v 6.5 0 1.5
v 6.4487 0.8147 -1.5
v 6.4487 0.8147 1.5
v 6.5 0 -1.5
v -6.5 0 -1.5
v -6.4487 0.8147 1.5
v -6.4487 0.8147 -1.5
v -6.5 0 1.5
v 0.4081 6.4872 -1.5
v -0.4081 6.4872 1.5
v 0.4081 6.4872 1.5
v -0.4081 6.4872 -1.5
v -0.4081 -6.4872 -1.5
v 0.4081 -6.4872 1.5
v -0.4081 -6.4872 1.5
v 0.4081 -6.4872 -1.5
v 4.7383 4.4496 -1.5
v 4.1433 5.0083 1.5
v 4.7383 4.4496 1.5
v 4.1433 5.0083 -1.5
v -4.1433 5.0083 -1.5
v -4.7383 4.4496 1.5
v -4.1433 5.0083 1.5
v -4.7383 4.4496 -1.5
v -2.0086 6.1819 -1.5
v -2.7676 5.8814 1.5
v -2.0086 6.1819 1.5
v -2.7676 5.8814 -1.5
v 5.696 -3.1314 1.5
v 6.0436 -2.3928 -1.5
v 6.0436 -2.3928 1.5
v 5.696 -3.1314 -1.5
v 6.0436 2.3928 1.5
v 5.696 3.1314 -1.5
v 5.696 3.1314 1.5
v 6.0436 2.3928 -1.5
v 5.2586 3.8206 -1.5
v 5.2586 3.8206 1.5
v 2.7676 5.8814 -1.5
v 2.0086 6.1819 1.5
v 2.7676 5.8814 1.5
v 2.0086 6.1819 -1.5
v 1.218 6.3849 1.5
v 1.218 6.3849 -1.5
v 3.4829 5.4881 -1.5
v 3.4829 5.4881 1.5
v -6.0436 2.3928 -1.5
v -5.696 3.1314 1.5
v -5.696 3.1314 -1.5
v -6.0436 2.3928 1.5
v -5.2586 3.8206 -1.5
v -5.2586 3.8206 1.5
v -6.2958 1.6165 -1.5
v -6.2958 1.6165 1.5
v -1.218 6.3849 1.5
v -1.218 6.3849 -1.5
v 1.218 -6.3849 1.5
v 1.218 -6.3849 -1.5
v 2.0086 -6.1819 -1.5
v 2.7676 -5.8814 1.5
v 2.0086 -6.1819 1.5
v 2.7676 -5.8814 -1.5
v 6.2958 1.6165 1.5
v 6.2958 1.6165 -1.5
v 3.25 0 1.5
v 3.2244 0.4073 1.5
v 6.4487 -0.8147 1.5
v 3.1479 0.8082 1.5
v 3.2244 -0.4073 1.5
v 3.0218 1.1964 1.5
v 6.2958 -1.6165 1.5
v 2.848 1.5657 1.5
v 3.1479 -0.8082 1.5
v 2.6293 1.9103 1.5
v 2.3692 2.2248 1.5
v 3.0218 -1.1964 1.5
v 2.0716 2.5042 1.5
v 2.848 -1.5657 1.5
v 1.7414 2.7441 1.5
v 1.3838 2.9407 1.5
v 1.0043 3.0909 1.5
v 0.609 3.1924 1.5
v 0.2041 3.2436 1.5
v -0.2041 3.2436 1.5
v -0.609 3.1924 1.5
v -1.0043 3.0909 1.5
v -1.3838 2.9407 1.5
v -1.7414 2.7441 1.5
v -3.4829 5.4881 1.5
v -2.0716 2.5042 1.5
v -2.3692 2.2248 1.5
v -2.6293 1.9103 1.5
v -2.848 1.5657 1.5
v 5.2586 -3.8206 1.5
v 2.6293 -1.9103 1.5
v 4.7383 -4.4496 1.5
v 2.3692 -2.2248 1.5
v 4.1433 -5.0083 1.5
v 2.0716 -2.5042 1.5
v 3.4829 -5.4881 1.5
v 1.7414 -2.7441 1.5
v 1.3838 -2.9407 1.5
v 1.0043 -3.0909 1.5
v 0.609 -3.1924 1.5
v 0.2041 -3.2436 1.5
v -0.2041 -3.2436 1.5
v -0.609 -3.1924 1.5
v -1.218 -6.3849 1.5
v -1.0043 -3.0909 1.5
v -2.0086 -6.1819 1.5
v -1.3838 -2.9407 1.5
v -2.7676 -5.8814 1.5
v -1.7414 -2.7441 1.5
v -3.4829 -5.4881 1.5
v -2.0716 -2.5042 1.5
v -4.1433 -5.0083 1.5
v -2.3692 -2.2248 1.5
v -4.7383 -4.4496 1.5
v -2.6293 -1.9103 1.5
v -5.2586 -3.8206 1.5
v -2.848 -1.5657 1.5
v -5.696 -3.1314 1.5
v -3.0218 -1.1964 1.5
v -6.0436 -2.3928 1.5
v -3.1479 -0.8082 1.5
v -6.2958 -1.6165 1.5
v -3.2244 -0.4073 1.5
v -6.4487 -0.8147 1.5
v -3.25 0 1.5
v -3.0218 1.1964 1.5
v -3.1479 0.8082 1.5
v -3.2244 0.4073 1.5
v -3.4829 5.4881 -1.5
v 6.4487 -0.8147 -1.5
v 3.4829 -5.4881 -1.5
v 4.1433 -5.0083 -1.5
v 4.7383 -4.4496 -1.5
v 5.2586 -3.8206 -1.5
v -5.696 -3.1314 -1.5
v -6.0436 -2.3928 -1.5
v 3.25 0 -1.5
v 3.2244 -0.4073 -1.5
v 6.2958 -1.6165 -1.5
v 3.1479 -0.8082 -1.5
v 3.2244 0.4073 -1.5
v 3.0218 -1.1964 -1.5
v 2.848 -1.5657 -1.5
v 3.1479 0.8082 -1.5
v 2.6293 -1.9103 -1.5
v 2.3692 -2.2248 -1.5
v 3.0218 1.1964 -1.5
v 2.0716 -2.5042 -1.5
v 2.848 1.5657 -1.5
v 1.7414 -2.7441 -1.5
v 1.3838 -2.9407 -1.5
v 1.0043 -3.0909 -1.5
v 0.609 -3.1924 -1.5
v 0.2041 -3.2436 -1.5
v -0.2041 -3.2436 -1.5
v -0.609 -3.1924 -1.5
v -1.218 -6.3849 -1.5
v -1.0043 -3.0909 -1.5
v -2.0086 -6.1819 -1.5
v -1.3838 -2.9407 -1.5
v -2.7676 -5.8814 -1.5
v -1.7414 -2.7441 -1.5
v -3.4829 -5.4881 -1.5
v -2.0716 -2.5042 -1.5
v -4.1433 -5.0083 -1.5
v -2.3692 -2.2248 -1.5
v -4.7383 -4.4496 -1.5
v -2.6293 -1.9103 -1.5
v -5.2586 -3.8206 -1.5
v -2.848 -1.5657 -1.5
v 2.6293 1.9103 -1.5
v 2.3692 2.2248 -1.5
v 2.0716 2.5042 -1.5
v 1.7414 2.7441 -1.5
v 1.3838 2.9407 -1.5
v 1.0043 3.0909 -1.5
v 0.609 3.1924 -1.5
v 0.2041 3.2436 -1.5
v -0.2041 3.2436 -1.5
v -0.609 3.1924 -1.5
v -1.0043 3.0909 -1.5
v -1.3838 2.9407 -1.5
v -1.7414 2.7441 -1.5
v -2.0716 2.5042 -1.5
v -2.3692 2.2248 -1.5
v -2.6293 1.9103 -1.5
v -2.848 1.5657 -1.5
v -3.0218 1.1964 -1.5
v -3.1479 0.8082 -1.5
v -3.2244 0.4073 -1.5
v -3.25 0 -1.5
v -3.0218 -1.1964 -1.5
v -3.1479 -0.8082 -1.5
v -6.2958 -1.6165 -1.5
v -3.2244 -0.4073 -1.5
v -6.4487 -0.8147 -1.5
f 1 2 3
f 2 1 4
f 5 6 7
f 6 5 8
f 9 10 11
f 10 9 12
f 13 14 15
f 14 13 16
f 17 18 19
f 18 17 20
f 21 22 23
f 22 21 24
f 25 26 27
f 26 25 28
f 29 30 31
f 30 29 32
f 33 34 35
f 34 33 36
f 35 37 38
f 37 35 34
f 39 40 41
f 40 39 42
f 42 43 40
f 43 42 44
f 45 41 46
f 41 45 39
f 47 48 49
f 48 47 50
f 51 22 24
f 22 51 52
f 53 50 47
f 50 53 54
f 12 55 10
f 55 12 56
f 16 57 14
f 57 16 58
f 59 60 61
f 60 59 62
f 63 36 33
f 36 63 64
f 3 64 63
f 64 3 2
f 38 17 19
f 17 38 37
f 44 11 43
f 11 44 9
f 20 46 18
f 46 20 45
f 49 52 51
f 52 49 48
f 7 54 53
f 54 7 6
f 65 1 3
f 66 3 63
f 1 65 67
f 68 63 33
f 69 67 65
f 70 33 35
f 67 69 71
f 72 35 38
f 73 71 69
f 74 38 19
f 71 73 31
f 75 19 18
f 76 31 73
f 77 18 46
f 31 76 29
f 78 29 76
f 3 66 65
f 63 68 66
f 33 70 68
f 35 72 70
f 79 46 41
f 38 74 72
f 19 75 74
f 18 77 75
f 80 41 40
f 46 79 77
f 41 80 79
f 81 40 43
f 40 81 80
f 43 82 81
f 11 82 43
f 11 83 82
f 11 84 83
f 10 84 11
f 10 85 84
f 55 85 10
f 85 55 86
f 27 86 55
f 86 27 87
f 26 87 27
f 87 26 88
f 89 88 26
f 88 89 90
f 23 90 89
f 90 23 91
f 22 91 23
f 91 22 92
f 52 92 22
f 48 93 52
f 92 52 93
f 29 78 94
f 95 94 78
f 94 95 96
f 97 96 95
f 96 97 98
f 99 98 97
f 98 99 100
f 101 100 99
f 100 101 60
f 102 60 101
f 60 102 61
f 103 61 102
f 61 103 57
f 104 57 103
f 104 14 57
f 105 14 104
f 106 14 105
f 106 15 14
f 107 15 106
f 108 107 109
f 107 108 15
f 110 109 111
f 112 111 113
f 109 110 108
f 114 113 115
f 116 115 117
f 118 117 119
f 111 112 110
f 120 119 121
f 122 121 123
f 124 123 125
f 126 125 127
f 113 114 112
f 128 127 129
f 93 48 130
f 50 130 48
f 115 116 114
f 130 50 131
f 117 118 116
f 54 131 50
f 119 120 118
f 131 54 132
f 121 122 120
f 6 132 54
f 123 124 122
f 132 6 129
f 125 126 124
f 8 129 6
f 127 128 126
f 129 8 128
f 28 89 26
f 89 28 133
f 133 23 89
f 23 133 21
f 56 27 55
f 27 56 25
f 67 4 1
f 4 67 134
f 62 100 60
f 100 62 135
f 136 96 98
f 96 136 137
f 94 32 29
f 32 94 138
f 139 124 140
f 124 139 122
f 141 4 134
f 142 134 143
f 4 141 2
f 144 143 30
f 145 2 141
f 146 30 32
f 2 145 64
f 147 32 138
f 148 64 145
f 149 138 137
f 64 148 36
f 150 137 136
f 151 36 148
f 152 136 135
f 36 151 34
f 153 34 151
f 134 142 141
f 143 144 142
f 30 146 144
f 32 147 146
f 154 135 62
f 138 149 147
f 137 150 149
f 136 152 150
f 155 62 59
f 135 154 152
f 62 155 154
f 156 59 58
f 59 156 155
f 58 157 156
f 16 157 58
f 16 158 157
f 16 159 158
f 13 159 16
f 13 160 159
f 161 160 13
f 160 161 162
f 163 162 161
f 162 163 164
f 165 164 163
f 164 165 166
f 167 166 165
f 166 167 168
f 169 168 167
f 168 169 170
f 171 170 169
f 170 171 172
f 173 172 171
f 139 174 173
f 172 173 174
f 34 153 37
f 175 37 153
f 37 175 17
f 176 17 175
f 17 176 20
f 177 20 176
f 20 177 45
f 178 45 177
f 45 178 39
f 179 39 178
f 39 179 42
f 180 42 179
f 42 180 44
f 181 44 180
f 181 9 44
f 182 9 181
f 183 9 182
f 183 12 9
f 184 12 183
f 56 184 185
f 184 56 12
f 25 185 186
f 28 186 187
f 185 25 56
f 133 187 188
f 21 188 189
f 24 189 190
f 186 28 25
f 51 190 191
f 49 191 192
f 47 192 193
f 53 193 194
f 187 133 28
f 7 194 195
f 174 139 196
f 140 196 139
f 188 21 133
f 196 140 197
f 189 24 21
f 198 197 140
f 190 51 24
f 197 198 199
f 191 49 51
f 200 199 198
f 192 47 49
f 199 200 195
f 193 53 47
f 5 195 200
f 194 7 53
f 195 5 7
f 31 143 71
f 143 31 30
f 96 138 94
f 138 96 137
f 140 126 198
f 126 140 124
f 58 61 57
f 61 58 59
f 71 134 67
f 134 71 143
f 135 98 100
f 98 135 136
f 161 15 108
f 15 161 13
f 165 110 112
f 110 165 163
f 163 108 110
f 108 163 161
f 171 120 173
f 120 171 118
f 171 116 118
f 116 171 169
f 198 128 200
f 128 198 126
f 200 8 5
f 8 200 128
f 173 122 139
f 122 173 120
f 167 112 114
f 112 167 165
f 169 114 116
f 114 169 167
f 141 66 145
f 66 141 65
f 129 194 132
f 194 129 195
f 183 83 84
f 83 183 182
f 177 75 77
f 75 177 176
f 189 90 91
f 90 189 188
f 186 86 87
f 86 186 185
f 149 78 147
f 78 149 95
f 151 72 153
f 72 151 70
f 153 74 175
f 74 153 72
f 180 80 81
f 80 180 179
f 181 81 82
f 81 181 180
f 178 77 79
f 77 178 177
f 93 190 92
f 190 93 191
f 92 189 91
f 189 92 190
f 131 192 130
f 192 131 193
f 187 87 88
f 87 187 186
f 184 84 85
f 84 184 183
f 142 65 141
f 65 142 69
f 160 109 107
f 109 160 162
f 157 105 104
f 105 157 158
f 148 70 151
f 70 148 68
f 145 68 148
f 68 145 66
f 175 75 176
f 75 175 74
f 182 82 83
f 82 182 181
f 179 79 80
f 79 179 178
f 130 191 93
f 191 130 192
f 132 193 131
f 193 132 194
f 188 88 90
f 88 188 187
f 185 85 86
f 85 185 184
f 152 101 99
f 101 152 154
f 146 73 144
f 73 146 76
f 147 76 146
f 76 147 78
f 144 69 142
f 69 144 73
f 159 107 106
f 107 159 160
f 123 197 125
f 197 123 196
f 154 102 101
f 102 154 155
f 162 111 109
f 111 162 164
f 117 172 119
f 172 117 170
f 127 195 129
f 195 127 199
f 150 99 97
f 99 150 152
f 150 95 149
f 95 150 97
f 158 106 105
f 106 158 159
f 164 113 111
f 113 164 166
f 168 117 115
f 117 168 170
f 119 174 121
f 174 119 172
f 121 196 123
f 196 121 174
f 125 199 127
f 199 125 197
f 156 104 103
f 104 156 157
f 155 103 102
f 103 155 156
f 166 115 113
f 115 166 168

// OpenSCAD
$fn = 50;


difference() {
	union() {
		translate(v = [0, 0, -1.5000000000]) {
			cylinder(h = 3, r = 6.5000000000);
		}
	}
	union() {
		translate(v = [0, 0, -100.0000000000]) {
			cylinder(h = 200, r = 3.2500000000);
		}
	}
}
